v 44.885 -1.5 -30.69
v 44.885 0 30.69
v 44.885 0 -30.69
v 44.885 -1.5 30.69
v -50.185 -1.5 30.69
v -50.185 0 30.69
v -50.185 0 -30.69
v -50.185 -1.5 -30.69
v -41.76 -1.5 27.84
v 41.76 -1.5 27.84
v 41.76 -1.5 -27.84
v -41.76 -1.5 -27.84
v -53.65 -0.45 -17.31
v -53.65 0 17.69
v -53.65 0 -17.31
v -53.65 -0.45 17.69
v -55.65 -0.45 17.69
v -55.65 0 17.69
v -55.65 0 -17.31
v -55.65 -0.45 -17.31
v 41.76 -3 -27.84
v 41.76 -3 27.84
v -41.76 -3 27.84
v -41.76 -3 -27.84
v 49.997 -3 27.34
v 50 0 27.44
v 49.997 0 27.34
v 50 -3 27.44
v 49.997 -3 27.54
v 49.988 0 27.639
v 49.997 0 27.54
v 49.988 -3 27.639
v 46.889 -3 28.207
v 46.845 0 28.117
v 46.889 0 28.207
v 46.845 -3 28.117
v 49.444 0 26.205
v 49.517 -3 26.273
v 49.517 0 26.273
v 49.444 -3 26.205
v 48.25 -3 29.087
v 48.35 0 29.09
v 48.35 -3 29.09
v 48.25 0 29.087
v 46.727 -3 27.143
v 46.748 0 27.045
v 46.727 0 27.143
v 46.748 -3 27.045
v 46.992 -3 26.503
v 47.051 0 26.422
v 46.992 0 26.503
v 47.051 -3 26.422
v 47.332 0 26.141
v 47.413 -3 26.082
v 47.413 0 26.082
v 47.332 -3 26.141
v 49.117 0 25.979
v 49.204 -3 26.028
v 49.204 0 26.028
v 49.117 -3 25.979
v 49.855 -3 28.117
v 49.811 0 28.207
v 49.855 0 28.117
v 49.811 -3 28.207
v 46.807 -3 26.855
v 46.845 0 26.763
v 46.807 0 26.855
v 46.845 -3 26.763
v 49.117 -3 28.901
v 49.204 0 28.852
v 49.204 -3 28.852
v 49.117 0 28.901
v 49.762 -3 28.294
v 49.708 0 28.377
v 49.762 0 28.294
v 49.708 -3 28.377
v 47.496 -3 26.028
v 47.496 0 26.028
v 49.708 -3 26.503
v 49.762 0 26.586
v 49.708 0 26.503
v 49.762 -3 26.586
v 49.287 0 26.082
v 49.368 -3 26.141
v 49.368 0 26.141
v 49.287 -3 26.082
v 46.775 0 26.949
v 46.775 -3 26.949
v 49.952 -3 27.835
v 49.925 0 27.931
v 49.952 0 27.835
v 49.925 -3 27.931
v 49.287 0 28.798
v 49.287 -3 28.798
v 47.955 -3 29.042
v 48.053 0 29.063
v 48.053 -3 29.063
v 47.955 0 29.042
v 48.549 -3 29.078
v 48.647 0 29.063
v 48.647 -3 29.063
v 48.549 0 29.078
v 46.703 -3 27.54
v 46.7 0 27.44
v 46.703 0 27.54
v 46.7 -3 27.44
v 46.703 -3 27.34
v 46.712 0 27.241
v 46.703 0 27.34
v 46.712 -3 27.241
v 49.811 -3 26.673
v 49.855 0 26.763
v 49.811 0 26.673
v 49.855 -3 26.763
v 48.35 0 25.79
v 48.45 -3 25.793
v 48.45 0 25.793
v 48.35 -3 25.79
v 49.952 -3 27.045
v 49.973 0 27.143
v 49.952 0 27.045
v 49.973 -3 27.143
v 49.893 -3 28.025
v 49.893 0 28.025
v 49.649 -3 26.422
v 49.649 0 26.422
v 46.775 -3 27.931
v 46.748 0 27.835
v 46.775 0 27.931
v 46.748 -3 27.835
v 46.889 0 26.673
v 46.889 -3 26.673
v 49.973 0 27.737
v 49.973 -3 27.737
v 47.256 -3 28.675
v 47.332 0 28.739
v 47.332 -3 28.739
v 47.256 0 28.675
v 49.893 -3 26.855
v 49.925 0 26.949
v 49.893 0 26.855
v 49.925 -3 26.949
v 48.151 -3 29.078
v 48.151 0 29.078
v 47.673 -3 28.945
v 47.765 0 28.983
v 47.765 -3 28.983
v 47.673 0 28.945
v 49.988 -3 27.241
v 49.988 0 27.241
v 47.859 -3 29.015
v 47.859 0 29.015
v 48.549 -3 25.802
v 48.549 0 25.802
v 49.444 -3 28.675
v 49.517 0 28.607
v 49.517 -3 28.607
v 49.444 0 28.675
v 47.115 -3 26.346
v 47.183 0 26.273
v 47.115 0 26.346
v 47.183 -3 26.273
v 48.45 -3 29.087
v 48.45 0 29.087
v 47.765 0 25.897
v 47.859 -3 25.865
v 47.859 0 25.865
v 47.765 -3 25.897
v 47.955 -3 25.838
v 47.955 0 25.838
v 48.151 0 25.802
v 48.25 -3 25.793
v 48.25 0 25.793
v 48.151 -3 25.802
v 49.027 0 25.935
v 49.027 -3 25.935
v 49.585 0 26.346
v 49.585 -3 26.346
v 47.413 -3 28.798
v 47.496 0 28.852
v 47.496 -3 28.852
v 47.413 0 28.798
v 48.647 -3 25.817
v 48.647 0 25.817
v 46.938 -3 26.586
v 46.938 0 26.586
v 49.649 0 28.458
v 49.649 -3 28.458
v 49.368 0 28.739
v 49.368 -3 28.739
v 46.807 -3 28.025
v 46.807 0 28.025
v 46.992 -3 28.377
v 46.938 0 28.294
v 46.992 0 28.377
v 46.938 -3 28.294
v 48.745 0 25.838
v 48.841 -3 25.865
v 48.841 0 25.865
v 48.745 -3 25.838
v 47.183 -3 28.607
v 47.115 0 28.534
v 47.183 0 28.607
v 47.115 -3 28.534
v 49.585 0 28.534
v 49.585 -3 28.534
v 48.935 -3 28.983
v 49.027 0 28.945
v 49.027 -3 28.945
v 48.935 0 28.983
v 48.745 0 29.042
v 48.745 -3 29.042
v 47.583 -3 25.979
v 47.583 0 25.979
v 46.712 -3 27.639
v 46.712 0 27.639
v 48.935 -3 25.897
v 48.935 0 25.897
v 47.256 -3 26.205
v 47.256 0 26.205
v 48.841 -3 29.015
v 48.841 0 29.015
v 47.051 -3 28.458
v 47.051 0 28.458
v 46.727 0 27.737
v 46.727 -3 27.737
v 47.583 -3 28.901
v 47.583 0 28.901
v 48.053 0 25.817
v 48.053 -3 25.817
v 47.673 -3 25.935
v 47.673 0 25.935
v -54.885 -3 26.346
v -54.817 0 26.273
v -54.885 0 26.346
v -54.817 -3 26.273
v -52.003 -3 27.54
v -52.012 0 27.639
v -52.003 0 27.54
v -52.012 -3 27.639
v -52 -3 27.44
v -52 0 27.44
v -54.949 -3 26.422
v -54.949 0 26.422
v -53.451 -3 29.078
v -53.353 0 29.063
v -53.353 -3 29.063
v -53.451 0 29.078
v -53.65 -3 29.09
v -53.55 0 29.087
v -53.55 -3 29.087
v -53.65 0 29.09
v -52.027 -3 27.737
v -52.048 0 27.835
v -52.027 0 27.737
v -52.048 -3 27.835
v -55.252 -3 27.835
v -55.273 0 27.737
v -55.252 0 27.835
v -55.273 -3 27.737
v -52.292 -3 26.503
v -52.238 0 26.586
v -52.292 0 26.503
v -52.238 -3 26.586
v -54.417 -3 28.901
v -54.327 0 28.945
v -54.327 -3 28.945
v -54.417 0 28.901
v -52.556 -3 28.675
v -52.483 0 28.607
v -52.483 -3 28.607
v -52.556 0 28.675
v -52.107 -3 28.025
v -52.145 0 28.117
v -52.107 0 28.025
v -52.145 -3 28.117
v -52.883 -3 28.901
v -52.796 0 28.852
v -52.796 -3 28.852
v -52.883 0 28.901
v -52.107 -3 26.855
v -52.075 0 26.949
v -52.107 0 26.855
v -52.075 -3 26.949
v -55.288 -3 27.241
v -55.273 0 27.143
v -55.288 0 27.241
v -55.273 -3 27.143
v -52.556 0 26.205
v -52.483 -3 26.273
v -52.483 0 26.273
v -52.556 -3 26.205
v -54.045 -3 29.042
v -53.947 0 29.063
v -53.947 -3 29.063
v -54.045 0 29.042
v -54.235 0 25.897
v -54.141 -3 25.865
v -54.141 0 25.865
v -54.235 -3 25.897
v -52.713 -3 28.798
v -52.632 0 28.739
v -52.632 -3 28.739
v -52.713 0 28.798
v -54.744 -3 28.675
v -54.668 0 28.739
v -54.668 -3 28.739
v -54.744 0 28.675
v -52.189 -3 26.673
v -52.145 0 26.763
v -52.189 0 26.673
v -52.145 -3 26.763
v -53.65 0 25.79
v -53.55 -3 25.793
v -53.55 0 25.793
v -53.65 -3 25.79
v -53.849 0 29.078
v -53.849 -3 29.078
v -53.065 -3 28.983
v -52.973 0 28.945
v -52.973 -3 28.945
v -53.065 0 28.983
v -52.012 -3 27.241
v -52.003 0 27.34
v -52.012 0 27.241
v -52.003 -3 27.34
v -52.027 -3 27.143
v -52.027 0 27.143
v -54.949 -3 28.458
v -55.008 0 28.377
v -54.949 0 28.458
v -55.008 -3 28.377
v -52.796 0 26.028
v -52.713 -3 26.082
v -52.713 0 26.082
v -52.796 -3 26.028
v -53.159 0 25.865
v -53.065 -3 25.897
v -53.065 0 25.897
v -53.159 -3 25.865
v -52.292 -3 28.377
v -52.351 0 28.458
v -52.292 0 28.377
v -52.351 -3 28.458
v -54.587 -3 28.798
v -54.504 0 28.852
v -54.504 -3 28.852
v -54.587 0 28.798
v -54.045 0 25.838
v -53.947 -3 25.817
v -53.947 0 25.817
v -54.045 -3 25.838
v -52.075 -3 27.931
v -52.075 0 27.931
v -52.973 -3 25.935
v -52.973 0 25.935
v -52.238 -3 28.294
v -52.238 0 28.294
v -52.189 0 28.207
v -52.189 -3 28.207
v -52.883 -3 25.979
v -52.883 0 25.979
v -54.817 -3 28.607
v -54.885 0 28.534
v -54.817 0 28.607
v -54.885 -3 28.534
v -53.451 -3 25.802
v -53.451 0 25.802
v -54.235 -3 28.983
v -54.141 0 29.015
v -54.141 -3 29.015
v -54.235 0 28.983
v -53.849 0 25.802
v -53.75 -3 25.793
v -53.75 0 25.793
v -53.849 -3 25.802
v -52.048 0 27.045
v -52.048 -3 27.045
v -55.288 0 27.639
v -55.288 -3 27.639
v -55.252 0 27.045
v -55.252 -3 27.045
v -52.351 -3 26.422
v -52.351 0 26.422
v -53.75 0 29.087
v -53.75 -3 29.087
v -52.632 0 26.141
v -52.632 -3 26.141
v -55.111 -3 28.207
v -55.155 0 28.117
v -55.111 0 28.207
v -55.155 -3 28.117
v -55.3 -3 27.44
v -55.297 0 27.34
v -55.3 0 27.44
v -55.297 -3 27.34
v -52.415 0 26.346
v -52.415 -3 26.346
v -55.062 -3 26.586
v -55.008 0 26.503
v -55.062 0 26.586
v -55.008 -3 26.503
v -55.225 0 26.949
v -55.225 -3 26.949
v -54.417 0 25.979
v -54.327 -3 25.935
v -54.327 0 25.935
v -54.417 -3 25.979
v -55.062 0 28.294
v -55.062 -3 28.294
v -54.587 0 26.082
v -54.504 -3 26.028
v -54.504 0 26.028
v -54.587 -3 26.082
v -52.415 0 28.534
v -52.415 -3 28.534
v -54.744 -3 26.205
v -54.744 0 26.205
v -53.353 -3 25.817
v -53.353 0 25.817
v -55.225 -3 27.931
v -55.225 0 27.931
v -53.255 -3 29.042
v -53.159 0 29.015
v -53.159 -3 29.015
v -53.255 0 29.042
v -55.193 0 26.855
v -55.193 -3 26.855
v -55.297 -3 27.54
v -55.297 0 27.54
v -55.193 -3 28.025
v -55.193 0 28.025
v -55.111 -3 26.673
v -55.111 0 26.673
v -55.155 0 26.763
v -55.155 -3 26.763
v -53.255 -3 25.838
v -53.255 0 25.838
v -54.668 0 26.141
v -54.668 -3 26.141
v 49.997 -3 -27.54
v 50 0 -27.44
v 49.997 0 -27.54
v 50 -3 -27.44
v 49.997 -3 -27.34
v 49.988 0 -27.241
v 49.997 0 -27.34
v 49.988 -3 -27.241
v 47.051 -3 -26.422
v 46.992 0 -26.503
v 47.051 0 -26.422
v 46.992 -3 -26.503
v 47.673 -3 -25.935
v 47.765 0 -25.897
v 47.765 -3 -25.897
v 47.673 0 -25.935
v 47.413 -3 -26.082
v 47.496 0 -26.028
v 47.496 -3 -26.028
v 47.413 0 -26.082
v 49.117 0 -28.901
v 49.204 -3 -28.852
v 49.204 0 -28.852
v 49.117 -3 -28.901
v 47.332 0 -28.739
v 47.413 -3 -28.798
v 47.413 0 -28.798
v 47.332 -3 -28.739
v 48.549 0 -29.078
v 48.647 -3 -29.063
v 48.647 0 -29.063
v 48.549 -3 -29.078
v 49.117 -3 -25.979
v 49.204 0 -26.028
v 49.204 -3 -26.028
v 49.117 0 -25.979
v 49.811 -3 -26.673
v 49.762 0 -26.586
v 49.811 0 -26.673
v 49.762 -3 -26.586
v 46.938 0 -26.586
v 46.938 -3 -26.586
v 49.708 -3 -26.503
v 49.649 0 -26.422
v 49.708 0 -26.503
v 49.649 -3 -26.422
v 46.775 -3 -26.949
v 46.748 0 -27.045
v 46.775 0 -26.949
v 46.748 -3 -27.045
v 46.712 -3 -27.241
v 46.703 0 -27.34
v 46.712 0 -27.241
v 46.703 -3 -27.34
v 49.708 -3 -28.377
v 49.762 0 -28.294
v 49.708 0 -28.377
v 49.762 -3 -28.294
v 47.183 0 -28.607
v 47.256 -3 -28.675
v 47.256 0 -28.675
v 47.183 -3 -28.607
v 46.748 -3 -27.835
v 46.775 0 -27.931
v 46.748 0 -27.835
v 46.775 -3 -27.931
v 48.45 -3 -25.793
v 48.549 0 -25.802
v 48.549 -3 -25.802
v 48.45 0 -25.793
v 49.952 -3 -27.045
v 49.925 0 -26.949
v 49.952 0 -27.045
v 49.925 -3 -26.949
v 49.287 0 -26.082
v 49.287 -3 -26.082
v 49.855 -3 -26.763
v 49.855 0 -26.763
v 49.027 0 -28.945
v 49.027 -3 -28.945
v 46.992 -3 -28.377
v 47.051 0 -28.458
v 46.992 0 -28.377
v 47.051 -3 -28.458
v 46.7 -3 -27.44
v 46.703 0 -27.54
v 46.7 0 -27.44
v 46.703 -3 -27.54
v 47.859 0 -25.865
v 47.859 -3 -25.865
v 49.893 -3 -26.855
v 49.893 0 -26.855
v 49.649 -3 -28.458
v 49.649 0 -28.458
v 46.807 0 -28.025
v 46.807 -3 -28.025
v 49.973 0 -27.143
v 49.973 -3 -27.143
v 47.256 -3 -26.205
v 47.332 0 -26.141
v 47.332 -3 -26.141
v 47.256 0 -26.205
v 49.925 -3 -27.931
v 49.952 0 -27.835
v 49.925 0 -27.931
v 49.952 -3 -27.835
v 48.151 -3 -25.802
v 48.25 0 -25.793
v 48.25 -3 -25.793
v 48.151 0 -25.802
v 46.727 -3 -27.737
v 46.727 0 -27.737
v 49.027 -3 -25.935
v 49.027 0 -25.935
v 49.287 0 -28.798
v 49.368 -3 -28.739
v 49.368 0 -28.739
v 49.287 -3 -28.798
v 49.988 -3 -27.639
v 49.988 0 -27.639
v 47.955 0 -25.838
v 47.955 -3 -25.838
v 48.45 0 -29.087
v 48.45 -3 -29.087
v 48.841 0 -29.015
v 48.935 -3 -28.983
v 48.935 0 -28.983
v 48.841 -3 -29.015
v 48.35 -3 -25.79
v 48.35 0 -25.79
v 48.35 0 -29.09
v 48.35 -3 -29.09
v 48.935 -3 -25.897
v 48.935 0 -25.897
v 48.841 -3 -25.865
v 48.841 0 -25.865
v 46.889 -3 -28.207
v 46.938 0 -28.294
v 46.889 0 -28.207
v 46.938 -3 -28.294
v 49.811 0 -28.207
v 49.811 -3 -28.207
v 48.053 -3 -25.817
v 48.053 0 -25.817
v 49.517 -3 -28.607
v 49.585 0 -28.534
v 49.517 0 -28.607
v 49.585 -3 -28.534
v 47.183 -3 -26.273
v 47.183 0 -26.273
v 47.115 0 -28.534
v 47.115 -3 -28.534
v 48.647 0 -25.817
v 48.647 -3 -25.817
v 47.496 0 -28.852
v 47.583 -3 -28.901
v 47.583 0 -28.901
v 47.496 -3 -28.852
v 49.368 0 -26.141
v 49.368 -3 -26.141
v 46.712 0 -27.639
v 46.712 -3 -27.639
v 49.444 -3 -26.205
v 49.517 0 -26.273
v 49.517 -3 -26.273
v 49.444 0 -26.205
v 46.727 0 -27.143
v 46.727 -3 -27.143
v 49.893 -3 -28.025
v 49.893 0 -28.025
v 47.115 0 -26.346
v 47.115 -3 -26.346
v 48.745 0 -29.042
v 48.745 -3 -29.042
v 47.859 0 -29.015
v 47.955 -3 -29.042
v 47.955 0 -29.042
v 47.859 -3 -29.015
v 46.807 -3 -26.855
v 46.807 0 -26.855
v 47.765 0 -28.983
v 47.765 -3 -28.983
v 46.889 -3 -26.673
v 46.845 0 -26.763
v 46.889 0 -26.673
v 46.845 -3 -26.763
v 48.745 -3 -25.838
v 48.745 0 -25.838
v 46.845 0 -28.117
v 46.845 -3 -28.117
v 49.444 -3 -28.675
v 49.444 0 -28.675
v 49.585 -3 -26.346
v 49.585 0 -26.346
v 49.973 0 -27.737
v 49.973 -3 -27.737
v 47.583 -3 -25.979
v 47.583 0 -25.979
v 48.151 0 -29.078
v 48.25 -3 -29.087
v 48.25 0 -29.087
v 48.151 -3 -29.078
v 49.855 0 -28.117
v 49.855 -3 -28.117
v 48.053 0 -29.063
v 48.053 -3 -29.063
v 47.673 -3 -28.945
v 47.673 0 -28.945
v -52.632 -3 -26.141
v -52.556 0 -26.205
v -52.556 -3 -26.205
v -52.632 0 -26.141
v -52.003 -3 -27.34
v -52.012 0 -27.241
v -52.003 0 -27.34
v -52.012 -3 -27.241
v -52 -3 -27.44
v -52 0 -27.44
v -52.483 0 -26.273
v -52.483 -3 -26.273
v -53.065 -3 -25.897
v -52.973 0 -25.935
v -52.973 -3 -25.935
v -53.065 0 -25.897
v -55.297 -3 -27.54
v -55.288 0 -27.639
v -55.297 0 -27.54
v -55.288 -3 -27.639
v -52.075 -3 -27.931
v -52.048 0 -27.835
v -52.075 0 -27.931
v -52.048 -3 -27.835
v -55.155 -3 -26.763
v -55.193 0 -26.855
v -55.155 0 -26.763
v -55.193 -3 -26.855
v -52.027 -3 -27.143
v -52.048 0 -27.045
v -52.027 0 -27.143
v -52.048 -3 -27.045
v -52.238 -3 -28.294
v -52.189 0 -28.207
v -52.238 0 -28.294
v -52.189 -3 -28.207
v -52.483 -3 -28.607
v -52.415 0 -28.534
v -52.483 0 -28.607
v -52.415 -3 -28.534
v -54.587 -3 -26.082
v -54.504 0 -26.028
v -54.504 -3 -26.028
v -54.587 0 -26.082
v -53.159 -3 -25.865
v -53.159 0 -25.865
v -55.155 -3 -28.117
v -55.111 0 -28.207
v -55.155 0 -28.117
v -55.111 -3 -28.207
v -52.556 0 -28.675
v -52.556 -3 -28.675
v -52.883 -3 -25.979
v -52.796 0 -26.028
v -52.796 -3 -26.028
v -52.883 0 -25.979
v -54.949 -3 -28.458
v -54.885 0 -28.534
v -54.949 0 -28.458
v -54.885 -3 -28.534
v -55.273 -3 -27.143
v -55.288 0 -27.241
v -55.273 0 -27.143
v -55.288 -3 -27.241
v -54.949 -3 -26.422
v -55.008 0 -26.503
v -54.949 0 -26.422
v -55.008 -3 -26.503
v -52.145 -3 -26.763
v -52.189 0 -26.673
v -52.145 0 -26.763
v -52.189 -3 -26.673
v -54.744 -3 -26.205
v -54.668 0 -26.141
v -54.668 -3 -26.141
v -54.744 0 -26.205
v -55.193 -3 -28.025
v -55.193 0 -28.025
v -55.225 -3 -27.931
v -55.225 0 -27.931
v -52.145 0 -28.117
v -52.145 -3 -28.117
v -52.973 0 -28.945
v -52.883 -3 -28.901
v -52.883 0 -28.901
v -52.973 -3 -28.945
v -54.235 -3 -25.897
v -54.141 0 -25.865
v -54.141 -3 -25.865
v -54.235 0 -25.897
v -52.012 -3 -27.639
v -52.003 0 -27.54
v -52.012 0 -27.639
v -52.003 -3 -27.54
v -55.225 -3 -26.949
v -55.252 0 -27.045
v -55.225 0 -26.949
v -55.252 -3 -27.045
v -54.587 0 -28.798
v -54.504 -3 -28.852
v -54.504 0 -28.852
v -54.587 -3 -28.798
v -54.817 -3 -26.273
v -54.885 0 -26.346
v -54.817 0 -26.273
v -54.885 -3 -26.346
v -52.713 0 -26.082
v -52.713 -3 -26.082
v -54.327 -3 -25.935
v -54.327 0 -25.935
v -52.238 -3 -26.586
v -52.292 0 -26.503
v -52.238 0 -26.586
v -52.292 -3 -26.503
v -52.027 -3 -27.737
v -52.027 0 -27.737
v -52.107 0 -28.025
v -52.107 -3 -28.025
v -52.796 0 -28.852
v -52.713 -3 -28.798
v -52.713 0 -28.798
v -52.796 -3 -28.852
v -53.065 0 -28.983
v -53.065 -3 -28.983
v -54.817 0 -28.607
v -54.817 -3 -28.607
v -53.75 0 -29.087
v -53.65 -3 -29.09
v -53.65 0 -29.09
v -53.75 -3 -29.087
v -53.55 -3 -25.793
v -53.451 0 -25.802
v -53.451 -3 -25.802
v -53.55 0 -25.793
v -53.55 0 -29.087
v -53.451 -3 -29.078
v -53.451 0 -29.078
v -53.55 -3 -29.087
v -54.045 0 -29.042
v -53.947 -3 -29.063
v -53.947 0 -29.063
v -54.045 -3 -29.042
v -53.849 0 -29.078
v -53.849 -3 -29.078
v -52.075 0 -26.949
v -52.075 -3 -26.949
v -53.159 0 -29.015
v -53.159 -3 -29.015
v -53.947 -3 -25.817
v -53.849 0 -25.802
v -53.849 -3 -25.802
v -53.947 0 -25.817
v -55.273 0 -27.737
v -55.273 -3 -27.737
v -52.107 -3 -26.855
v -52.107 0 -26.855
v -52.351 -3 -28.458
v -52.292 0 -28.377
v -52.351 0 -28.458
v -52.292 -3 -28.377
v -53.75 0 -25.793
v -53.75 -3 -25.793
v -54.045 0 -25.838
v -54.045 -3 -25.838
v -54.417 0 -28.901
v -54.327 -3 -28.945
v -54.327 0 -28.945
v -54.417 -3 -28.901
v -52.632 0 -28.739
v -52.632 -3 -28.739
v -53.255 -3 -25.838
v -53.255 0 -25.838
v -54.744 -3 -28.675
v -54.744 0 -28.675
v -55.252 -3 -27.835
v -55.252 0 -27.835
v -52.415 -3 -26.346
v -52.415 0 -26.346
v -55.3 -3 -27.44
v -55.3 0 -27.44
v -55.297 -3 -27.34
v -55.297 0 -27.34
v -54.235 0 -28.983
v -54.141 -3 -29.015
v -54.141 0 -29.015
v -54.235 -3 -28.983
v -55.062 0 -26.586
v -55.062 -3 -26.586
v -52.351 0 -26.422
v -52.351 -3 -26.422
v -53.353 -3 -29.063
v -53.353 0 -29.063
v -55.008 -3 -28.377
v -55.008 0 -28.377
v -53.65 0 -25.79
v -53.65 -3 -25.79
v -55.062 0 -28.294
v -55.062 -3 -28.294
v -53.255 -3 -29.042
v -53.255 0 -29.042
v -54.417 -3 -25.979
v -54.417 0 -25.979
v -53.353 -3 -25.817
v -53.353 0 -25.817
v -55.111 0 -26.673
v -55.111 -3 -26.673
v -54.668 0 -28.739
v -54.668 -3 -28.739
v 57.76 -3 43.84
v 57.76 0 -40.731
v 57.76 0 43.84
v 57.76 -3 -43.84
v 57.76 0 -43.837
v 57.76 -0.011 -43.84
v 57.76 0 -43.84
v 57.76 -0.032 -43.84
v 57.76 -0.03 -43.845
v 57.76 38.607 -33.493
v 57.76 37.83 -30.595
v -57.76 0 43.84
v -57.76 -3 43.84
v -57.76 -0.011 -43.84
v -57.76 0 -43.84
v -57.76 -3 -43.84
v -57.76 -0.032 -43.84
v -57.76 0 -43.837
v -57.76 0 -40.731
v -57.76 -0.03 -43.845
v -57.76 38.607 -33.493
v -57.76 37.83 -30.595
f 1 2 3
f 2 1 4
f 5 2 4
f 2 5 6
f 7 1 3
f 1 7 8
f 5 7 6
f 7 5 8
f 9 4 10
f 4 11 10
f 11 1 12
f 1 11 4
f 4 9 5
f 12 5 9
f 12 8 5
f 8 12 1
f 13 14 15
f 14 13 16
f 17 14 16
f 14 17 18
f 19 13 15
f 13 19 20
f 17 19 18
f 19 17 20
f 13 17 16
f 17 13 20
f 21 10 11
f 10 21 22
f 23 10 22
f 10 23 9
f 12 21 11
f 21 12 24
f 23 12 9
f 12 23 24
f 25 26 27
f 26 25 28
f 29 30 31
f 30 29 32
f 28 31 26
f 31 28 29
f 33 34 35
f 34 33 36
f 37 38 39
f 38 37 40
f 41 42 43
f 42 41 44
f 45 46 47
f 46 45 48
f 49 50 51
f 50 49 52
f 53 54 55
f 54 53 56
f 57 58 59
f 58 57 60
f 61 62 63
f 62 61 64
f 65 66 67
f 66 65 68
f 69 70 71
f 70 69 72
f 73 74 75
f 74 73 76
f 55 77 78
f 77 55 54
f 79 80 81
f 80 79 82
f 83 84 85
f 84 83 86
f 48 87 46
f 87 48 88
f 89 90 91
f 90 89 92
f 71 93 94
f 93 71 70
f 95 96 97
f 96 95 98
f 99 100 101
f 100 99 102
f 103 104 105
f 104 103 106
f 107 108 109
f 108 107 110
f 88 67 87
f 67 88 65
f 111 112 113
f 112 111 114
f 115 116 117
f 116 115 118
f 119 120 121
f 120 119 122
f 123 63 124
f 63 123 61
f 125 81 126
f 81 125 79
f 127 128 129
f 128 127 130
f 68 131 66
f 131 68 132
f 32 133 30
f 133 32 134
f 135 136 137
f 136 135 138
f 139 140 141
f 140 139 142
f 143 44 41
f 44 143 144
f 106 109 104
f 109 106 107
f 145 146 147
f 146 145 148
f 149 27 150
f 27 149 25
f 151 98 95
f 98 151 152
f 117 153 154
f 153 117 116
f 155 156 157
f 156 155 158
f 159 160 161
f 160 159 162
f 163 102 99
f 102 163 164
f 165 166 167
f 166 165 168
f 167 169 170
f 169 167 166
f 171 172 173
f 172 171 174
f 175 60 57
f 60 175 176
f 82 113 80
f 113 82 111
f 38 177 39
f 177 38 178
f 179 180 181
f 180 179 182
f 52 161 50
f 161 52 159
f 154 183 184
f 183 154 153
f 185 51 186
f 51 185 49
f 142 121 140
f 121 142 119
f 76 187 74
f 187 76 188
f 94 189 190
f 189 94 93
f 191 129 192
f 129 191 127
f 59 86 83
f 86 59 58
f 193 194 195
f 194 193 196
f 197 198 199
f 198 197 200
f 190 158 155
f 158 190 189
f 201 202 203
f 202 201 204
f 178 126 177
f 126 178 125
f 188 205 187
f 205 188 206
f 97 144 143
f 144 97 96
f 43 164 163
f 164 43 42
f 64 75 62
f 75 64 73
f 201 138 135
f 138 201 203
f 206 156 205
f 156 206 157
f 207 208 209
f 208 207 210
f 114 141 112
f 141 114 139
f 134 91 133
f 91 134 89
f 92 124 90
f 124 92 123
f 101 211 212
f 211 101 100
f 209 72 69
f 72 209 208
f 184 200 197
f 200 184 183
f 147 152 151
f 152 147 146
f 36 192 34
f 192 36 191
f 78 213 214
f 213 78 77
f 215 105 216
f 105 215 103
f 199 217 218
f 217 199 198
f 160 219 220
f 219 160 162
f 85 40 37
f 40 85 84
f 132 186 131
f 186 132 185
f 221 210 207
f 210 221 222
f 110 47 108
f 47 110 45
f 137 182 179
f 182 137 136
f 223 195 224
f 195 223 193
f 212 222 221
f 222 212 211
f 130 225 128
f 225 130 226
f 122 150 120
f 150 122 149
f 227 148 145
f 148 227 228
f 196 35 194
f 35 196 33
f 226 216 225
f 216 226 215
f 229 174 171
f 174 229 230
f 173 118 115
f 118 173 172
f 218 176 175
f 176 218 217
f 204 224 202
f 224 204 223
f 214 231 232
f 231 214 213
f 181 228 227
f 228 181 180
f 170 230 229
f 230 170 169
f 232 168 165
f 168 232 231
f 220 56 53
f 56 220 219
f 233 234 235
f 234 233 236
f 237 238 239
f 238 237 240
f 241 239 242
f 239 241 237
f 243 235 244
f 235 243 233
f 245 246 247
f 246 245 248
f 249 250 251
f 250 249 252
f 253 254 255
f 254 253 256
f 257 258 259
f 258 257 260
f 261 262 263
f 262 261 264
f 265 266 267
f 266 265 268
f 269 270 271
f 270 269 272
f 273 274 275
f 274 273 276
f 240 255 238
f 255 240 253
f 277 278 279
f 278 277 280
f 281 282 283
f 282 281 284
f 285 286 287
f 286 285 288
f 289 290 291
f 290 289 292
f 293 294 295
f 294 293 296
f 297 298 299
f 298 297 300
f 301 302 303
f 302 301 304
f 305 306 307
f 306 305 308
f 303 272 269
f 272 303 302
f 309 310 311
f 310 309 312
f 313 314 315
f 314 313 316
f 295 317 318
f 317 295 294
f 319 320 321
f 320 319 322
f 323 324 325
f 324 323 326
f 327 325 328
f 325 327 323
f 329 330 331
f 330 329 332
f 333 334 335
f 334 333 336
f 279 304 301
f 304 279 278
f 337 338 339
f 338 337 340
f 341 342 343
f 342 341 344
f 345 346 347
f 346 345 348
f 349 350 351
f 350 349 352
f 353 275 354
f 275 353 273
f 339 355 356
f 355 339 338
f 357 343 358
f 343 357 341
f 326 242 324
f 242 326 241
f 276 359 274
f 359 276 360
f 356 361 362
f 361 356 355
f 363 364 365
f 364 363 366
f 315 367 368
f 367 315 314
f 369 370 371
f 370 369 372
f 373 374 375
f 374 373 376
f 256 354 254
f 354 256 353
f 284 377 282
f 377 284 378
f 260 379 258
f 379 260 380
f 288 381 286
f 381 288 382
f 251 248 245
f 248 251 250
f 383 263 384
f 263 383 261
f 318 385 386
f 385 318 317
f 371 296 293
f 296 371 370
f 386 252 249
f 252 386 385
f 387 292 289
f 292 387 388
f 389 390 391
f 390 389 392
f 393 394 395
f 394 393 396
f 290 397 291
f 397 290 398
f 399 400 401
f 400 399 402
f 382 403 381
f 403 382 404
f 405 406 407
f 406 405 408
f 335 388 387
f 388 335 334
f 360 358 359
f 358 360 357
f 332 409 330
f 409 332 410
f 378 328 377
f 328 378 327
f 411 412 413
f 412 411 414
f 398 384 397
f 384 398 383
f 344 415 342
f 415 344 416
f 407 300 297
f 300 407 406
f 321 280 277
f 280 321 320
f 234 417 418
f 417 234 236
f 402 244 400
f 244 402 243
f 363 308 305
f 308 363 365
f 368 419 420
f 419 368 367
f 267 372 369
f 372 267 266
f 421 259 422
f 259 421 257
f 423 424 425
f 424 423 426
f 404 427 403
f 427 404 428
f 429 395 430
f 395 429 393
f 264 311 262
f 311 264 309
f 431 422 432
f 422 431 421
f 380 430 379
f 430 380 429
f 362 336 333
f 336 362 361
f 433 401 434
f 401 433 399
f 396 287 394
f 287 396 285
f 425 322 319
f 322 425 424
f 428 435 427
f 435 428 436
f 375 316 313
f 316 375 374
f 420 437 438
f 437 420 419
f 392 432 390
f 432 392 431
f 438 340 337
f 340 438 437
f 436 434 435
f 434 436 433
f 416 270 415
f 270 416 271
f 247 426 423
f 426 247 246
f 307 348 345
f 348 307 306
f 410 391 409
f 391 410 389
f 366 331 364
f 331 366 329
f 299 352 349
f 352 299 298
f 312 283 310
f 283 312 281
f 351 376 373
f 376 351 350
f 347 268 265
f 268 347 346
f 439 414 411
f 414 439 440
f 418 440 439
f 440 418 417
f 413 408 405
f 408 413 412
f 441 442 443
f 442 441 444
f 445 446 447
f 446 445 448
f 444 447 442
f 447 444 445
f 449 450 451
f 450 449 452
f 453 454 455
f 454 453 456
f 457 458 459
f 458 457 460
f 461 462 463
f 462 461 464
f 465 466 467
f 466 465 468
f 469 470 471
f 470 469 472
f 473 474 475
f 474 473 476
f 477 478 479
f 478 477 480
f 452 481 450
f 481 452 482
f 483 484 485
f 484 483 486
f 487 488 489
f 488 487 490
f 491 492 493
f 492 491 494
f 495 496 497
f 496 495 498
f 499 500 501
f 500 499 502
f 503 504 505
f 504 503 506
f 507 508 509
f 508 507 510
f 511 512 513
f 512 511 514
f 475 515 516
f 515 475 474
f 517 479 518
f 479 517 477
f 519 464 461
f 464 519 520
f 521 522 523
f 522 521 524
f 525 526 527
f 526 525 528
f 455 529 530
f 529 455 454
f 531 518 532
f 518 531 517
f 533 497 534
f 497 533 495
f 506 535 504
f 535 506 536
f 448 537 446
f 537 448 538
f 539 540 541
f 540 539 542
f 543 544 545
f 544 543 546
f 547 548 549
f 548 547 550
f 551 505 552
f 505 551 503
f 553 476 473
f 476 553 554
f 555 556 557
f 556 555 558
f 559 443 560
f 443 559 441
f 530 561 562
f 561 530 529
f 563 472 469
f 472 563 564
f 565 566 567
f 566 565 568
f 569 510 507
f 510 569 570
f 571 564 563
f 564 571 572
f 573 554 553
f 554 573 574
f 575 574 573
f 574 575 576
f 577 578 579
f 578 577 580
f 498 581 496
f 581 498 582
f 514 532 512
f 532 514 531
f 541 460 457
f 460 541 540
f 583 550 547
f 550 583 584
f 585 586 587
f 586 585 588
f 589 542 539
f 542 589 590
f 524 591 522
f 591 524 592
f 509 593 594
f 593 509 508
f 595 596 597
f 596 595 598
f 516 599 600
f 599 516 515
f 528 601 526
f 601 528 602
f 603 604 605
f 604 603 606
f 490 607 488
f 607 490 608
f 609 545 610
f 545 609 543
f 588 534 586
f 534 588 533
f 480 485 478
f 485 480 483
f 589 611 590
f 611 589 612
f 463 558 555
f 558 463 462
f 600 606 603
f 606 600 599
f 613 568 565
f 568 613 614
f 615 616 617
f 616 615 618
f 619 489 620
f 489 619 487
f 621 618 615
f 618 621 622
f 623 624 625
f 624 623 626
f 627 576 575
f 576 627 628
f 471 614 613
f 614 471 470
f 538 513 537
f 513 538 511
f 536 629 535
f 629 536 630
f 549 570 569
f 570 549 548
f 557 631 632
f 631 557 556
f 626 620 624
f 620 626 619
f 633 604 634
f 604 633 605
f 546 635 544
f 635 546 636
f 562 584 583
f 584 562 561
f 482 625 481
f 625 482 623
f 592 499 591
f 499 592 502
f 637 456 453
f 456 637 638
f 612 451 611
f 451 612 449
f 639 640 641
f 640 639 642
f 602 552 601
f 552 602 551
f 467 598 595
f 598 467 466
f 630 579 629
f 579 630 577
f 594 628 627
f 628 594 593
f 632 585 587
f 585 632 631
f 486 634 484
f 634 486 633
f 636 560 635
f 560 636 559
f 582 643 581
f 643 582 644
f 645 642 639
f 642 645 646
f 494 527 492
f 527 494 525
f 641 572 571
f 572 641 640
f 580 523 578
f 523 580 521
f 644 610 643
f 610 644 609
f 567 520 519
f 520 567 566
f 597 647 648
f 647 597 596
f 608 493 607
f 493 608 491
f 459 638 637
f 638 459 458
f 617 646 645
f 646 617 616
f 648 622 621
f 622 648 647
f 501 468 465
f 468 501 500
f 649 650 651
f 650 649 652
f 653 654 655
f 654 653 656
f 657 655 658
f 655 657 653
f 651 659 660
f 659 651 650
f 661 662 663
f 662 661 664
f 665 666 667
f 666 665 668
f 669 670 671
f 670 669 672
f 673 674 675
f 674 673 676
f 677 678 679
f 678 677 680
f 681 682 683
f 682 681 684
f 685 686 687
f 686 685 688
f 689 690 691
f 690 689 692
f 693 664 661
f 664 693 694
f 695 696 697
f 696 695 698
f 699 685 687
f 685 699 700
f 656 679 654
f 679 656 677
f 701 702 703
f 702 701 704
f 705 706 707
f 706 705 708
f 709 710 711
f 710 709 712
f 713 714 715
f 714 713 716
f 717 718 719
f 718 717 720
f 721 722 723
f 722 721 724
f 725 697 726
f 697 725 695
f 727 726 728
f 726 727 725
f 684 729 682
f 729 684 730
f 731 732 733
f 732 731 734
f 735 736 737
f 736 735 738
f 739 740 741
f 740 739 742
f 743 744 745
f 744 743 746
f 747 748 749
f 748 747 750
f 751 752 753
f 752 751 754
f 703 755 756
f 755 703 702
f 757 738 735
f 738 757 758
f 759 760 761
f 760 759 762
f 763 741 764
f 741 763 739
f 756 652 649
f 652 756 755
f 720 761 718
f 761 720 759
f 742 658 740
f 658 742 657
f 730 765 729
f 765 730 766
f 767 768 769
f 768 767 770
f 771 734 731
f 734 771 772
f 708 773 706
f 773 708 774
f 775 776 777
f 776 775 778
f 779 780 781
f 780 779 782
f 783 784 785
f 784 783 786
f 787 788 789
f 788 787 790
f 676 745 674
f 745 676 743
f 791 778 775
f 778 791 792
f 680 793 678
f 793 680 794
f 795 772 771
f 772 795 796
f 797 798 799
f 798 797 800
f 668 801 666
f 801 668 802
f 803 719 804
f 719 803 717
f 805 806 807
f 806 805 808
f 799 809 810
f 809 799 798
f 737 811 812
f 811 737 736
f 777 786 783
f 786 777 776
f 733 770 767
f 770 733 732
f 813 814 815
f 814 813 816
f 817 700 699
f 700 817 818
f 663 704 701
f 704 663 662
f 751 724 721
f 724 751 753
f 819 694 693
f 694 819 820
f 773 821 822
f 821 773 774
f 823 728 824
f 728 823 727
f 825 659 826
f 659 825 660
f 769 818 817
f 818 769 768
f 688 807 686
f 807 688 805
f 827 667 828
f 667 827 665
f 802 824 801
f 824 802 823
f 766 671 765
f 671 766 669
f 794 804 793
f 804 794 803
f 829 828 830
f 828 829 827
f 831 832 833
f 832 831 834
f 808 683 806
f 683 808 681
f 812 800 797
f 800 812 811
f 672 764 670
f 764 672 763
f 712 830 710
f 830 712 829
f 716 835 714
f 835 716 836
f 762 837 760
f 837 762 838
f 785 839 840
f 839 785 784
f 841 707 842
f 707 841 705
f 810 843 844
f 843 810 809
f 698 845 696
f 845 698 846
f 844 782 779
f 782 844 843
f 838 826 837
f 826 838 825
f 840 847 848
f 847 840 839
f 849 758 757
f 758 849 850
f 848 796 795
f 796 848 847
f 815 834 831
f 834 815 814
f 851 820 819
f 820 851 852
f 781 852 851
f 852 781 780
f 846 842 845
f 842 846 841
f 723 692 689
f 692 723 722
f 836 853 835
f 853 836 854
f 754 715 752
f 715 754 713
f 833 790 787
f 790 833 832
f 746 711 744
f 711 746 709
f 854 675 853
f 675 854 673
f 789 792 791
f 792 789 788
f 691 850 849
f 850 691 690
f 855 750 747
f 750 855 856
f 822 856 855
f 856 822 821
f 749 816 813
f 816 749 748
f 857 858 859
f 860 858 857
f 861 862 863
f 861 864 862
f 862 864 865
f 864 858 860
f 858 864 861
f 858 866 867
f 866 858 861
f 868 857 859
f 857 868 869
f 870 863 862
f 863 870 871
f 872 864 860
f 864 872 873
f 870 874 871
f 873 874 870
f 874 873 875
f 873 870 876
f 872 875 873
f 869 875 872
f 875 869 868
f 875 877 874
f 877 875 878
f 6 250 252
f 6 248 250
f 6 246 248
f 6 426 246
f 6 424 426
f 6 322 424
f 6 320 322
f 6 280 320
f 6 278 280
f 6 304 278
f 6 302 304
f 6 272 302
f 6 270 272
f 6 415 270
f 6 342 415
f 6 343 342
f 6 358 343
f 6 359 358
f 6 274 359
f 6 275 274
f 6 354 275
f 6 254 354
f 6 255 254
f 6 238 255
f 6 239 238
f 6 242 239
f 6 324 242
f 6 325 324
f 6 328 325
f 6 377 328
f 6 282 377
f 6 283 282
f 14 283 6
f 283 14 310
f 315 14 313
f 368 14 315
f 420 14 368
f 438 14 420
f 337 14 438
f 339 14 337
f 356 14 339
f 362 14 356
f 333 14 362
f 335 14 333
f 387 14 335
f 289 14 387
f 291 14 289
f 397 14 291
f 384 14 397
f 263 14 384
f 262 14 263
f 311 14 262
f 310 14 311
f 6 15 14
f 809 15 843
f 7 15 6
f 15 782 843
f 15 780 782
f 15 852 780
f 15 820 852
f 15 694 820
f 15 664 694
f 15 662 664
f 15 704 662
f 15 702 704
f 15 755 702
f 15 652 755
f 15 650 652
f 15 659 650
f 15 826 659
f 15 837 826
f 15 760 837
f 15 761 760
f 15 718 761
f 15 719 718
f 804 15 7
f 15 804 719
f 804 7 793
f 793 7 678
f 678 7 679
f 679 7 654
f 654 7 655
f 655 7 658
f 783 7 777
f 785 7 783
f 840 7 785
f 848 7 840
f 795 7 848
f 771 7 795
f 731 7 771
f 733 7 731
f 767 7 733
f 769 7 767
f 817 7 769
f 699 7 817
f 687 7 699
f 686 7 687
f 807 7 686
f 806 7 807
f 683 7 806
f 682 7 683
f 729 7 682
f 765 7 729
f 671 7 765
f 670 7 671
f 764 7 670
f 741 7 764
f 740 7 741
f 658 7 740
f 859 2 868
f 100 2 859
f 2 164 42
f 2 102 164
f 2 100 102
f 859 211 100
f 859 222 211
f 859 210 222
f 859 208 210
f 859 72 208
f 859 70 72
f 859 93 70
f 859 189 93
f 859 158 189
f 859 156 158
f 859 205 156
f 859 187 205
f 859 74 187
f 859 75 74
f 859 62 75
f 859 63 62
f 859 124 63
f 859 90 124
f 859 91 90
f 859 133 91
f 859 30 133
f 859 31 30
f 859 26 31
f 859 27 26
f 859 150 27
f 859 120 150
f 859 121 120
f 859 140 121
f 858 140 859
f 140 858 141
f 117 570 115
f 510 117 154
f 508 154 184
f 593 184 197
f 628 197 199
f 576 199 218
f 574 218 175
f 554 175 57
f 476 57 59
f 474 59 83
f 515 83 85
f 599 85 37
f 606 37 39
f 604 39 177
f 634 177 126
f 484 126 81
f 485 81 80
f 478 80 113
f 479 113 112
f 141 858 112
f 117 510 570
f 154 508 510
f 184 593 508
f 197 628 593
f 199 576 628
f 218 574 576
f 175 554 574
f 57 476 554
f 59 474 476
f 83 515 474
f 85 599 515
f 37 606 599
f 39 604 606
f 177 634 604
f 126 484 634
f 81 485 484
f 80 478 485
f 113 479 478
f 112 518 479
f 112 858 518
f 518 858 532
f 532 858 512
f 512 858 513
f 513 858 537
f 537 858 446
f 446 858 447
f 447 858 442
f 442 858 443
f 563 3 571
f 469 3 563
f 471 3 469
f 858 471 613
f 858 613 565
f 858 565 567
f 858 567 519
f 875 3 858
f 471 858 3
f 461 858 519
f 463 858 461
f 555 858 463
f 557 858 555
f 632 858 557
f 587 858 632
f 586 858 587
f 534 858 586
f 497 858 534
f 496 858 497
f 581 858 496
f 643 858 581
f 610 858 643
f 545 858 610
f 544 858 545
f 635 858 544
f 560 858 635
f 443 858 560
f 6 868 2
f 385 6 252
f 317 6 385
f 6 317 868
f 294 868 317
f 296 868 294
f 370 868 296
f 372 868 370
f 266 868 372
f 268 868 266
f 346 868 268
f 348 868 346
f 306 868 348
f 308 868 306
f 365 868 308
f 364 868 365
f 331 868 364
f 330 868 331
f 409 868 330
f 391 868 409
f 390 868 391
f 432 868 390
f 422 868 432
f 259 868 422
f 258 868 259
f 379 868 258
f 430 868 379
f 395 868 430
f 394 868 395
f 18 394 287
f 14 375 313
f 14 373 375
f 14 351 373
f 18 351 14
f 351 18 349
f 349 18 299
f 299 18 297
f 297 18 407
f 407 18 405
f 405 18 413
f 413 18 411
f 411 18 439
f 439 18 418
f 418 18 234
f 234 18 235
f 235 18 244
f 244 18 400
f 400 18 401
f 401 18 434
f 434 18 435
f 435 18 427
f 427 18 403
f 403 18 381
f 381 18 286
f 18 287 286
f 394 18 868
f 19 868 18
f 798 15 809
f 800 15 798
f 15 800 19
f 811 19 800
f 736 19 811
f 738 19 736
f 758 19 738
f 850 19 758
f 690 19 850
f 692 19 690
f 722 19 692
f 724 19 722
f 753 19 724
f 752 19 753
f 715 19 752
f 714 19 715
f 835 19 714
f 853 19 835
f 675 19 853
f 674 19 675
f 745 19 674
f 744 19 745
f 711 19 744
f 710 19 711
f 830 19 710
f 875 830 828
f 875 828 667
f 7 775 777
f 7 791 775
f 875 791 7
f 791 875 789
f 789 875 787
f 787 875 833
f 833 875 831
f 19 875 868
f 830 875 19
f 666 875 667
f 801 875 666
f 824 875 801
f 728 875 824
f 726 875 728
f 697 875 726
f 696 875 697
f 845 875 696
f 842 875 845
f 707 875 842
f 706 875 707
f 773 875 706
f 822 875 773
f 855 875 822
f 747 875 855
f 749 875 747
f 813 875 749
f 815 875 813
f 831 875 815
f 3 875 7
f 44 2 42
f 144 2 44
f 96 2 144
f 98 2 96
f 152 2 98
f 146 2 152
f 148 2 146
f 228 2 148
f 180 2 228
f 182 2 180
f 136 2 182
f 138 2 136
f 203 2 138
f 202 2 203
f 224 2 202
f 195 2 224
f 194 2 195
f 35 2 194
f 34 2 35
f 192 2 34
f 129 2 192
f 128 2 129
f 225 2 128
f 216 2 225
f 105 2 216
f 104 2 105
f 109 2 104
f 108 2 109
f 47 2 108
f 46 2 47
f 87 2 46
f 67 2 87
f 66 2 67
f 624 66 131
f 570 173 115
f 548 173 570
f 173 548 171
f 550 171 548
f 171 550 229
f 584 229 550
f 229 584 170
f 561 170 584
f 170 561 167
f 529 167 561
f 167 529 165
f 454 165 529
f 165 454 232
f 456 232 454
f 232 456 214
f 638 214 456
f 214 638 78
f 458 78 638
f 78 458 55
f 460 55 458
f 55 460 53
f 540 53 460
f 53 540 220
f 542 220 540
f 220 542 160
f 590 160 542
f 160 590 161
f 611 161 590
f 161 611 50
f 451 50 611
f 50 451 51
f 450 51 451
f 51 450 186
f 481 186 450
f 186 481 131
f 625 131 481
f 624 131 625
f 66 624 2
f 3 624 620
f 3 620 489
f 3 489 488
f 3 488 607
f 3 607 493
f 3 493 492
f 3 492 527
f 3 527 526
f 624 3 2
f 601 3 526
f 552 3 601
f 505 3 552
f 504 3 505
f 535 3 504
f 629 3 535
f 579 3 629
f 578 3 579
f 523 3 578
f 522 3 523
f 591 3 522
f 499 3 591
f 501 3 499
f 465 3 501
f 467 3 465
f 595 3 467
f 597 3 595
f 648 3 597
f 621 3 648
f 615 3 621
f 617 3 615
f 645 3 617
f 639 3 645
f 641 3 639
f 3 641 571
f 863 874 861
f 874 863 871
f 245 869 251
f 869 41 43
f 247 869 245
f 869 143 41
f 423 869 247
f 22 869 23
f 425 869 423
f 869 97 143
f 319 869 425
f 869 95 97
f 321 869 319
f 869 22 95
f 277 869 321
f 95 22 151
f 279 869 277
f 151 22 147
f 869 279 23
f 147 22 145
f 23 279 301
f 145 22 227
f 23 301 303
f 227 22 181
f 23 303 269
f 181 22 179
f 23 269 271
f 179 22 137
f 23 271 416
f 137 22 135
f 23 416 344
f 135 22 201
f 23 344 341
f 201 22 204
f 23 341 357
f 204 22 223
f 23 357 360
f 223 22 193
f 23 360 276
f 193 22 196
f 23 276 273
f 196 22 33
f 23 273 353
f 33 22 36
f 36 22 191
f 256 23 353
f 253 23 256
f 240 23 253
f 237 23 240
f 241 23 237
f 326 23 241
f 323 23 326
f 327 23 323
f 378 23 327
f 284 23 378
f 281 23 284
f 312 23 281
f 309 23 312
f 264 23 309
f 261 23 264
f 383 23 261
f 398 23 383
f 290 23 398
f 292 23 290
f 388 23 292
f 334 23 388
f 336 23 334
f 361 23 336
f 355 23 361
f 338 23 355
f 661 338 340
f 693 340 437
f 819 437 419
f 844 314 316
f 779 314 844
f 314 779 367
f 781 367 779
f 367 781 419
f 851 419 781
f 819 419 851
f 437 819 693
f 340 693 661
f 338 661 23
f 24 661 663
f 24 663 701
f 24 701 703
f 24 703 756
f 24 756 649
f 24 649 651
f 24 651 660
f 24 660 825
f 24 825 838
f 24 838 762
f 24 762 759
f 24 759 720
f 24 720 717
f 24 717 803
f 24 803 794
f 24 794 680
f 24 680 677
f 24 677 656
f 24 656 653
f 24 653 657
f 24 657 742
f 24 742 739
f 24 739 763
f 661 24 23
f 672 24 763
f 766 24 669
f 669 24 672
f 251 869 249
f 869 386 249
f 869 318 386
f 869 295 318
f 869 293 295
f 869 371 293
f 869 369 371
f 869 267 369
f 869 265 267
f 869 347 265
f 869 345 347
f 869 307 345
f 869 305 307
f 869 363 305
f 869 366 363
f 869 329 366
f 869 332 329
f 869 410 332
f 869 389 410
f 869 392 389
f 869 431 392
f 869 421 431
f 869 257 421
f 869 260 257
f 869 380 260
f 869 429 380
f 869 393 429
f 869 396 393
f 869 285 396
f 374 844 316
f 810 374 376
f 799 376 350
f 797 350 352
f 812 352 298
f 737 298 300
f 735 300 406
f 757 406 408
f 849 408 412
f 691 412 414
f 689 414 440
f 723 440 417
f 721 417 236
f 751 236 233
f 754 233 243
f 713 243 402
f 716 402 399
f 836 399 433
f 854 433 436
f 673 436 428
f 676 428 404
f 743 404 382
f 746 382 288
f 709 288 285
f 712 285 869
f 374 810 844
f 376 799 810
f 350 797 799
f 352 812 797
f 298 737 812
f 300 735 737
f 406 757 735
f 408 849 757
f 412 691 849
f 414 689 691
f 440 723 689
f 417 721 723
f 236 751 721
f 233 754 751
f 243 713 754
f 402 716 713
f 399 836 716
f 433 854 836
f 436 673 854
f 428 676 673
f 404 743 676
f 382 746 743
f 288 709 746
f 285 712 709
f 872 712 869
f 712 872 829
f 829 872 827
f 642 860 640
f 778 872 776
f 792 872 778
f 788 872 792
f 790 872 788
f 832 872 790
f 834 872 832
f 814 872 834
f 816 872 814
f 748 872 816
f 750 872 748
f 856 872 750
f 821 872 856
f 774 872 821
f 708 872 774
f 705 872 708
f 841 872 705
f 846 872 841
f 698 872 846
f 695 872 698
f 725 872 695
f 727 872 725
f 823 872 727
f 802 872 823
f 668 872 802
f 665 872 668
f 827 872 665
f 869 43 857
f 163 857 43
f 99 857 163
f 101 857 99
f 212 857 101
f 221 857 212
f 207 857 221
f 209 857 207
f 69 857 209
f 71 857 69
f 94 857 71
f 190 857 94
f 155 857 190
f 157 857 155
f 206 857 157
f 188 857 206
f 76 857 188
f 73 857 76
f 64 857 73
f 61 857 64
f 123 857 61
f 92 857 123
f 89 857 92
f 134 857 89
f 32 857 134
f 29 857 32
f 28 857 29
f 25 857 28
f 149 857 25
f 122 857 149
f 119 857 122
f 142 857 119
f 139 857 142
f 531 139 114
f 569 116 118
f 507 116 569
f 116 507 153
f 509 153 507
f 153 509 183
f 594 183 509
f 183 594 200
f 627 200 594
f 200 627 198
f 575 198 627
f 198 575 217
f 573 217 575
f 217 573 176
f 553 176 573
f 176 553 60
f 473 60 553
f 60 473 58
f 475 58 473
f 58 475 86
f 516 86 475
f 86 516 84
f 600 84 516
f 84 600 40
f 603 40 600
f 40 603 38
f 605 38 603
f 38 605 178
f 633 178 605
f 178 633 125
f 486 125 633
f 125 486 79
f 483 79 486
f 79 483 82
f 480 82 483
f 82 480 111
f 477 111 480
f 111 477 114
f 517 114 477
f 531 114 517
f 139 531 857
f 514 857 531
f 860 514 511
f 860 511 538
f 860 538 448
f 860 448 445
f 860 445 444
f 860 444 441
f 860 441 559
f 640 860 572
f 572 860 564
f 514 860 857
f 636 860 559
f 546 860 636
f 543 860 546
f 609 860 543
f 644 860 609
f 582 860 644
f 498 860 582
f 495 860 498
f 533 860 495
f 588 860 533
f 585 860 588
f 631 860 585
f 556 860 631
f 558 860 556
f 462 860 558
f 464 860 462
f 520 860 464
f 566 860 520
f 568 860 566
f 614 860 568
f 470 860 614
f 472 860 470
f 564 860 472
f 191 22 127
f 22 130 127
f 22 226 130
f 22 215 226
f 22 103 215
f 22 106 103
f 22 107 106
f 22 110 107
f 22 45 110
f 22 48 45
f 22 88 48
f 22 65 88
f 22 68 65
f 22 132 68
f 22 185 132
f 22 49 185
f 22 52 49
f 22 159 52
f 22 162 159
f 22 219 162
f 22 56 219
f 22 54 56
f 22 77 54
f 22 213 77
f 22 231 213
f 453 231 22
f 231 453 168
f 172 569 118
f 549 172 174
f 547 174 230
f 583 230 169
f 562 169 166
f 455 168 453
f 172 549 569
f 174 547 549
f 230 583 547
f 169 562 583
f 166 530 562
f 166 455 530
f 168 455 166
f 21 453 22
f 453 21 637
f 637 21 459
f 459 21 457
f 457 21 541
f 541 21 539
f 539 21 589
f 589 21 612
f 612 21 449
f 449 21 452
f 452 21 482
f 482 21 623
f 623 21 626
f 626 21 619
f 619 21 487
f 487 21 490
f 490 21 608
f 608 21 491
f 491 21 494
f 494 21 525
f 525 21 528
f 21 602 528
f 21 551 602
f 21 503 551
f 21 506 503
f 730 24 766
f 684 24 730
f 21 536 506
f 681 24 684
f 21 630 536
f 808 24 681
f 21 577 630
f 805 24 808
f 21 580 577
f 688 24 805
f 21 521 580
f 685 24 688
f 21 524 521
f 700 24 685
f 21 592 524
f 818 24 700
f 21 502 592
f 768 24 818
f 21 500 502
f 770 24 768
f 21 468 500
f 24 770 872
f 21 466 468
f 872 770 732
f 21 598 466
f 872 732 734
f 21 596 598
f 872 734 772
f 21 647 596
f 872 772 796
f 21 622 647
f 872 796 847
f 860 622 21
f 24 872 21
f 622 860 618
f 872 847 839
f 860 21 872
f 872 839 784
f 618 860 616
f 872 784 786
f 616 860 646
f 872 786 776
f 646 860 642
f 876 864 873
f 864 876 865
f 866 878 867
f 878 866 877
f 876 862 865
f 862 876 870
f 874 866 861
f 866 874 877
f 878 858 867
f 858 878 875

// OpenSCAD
// file: metrichardware.scad
/*=============================================================================

  Model of Metric hardware

  (c) David Annett
  9 August 2022

  The value MxPass is for a hole that is big enough for a Mx part to pass thru
  
  The value MxTap is for a hole that is small enough to have a thread tapped
  for a Mx part.  For screws below M3 an insert will be needed instead of a tap.
  
  The function MxPillar creates a mount pillar with a hole for a threaded insert
  be inserted under presure.
 
=============================================================================*/

// Imported modules

//use <SomeLibrary.scad>;

/*-----------------------------------------------------------------------------

  Hole sizes

  Pass   - Size to pass bolt through easily with little gap
  Tap    - Size to tap a thread into with thread cutting tool
  Insert - Size to hole a threaded brass insert

-----------------------------------------------------------------------------*/

M2Pass              =  2.3;
M2Insert            =  3.4;
M2PillarLength      =  3;
M2PillarDiameter    =  5;

M2_5Pass            =  2.8;
M2_5Insert          =  3.4;
M2_5PillarLength    =  3;
M2_5PillarDiameter  =  5;

M3Pass              =  3.3;
M3Tap               =  2.5;
M3Insert            =  3.9;
M3PillarLength      =  4.9;
M3PillarDiameter    =  6.5;
M3RoundHead         =  5.3;
M3RoundHeadPass     =  5.5;

M4Pass              =  4.4;

M5Pass              =  5.5;

VESA75Spacing       = 75;
VESA75Pass          = M4Pass;

VESA100Spacing      = 100;
VESA100Pass         = M4Pass;

MOverlap            =  0.1;


module M2Pillar (
  Height
  )
{
  difference() {
      cylinder(h = Height + MOverlap, d = M2PillarDiameter, center = true);
    
      // Insert hole

      translate([0, 0, MOverlap])
          cylinder(h = Height, d = M2Insert, center = true);
    
      // Insert lead in
  
      translate([0, 0, MOverlap + Height / 2 - 0.5])
        cylinder(h = 0.5, d = M2Insert + 0.4, center = true);
  }
}


module M2_5Pillar (
  Height
  )
{
  difference() {
      cylinder(h = Height + MOverlap, d = M2_5PillarDiameter, center = true);
    
      // Insert hole

      translate([0, 0, MOverlap])
          cylinder(h = Height, d = M2_5Insert, center = true);
    
      // Insert lead in
  
      translate([0, 0, MOverlap + Height / 2 - 0.5])
        cylinder(h = 0.5, d = M2_5Insert + 0.4, center = true);
  }
}


module M3Pillar (
  Height
  )
{
  difference() {
      cylinder(h = Height + MOverlap, d = M3PillarDiameter, center = true);
    
      // Insert hole

      translate([0, 0, MOverlap])
          cylinder(h = Height, d = M3Insert, center = true);
    
      // Insert lead in

      translate([0, 0, MOverlap + Height / 2 - 0.5])
        cylinder(h = 0.5, d = M3Insert + 0.4, center = true);
  }
}


/*
  VESA 75 pass holes
  Centered on center of pattern, projects in -Y direction
*/
module VESA75Holes (
  Depth
)
{
  translate([VESA75Spacing/2, Depth/-2, VESA75Spacing/2])
  rotate([90, 0 , 0])
    cylinder(h = Depth, d = VESA75Pass, center = true);

  translate([VESA75Spacing/2, Depth/-2, VESA75Spacing/-2])
  rotate([90, 0 , 0])
    cylinder(h = Depth, d = VESA75Pass, center = true);

  translate([VESA75Spacing/-2, Depth/-2, VESA75Spacing/2])
  rotate([90, 0 , 0])
    cylinder(h = Depth, d = VESA75Pass, center = true);

  translate([VESA75Spacing/-2, Depth/-2, VESA75Spacing/-2])
  rotate([90, 0 , 0])
    cylinder(h = Depth, d = VESA75Pass, center = true);
}
// file: 4_lcd_msp4030.scad
/*=================================================

  Colour 4" LCD module - MSP4030 variant (blue PCB)

  (c) David Annett
  17 Mar 2026

  The reference point for everythimg is the front
  face of the panel centered on the active image
  area.

=================================================*/

// Imported modules

include <metrichardware.scad>;

// Control rendering quality

$fa = 1;
$fs = 0.1;
Overlap = 0.05;
showsample = true;


// Major dimensions

4_LCDWidth          = 108;    // X - Width of LCD PCB
4_LCDHeight         =  60.88; // Z - Height of LCD PCB
4_LCDXPCBOffset     =   2.65; // X
4_LCDMountOffset    =   3;    // XZ - Offset for mounting holes from corner
4_LCDPCBDepth       =   1.6;  // Y - PCB thickness

4_LCDPanelWidth     =  95.07; // X Added 0.5mm for cutout clearance
4_LCDPanelDepth     =   2.5;  // Y Depth of actual panel
4_LCDPanelHeight    =  61.38; // Z Added 0.5mm for cutout clearance
4_LCDXPanelOffset   =   2.65; // X Panel shift to the right

4_LCDActiveWidth    =  83.52; // X 
4_LCDActiveHeight   =  55.68; // Z 

4_LCDPinsWidth      =   2;    // X
4_LCDPinsHeight     =  35;    // Z
4_LCDPinsDepth      =   1.5;  // Y
4_LCDPinsLeftOffset =   1;    // X To edge of pins, not center
4_LCDPinsTopOffset  =  13;    // Z To edge of pins, not center


// Derived dimemsions

4_LCDDepth = 4_LCDPanelDepth + 4_LCDPCBDepth; // Y - Panel face to PCB rear 



module 4_LCDModuleActiveCutout(depth)
{
  translate([0, depth/-2, 0])
    cube([4_LCDActiveWidth,
          depth + Overlap * 2,
          4_LCDActiveHeight],
          center = true);
}



module 4_LCDModuleHountHoles(depth)
{
  fdepth = depth + Overlap * 2;
  translate([4_LCDWidth/2 - 4_LCDMountOffset - 4_LCDXPanelOffset,
             0,
             4_LCDHeight/2 - 4_LCDMountOffset])
  rotate([90, 0, 0])
    cylinder(fdepth, d=M3Pass, center = true);

  translate([4_LCDWidth/-2 + 4_LCDMountOffset - 4_LCDXPanelOffset,
             0,
             4_LCDHeight/2 - 4_LCDMountOffset])
  rotate([90, 0, 0])
    cylinder(fdepth, d=M3Pass, center = true);

  translate([4_LCDWidth/2 - 4_LCDMountOffset - 4_LCDXPanelOffset,
             0,
             4_LCDHeight/-2 + 4_LCDMountOffset])
  rotate([90, 0, 0])
    cylinder(fdepth, d=M3Pass, center = true);

  translate([4_LCDWidth/-2 + 4_LCDMountOffset- 4_LCDXPanelOffset,
             0,
             4_LCDHeight/-2 + 4_LCDMountOffset])
  rotate([90, 0, 0])
    cylinder(fdepth, d=M3Pass, center = true);
}




// === The LCD display ===

// Show module in place, centered on front face of active area
module 4_LCDModule(
  colour = "red"
  )
{
  // PCB
  
  color(colour)
    difference() {
      translate([-(4_LCDXPCBOffset),
                 4_LCDPanelDepth + 4_LCDPCBDepth / 2,
                 0])
        cube([4_LCDWidth,
              4_LCDPCBDepth,
              4_LCDHeight],
             center = true);
      
      translate([0,
                 4_LCDPanelDepth + 4_LCDPCBDepth / 2,
                 0])
        4_LCDModuleHountHoles(4_LCDPCBDepth);
    }

  // Panel
  
  color(colour)
  translate([-(4_LCDXPanelOffset),
             4_LCDPanelDepth / 2,
             0])
    cube([4_LCDPanelWidth,
          4_LCDPanelDepth,
          4_LCDPanelHeight],
         center = true);

  // Connector pins
    
  color(colour)
  translate([(4_LCDWidth / -2 - 4_LCDXPCBOffset + 4_LCDPinsWidth / 2 + 4_LCDPinsLeftOffset),
             4_LCDPinsDepth / -2 + 4_LCDPanelDepth + Overlap,
             4_LCDPanelHeight / 2 - 4_LCDPinsHeight / 2 - 4_LCDPinsTopOffset])
    cube([4_LCDPinsWidth,
          4_LCDPinsDepth,
          4_LCDPinsHeight],
         center = true);


  // Active area

  color("black")
  translate([0,
             -0.05,
             0])
    cube([4_LCDActiveWidth,
          0.1,
          4_LCDActiveHeight],
         center = true);
}


// === Show samples ===

if (showsample) {
  4_LCDModule();
}
//4_LCDModuleActiveCutout(2);
//4_LCDModuleHountHoles(4_LCDPCBDepth);
// main file
/*=================================================

  ESP32 WT32-SC01 3.5" LCD module display stand

  (c) David Annett
  10 January 2024

  A simple L shaped stand for WT32-SC01 module.

=================================================*/

// Imported modules

include <4_lcd_msp4030.scad>;

// Control rendering quality

$fa = 1;
$fs = 0.1;
Overlap = 0.05;
showsample = false;

// What parts to render

ShowNonPrint   = false;
ShowPanel      = true;

// What features are present

LCDScrewType   = "Insert";  // Can be Tap or Insert

// Major dimensions

StandThickness =   3.0;
StandBorder    =  16;
FootDepth      =  40;
FootAngle      = 105;
FootTweak1     =   1.1;
FootTweak2     =   6.62;

// Derived dimemsions

StandWidth     = 4_LCDActiveWidth + StandBorder * 2;
StandHeight    = 4_LCDActiveHeight + StandBorder * 2;
LCDRecess      = StandThickness / 2;

// === The stand ===

// Front face

if (ShowPanel) {
  difference() {
    union() {
      translate([0, StandThickness/-2, 0])
        cube([StandWidth, StandThickness, StandHeight], center = true);
    }

    // LCD cutout

    translate([0, -LCDRecess, 0])
    4_LCDModule();
        
    // Face cutout

    4_LCDModuleActiveCutout(StandThickness);
    
    // Mounting holes
    
    4_LCDModuleHountHoles(StandThickness * 2);
    }

// Base

    translate([0, FootDepth/2-FootTweak1, StandHeight/-2+FootTweak2])
    rotate([FootAngle, 0, 0])
        cube([StandWidth, StandThickness, FootDepth], center = true);
}



// Show module in place in different colour

if (ShowNonPrint) {
  if (ShowPanel) {
    translate([0, -LCDRecess, 0])
    4_LCDModule();
  }
}
